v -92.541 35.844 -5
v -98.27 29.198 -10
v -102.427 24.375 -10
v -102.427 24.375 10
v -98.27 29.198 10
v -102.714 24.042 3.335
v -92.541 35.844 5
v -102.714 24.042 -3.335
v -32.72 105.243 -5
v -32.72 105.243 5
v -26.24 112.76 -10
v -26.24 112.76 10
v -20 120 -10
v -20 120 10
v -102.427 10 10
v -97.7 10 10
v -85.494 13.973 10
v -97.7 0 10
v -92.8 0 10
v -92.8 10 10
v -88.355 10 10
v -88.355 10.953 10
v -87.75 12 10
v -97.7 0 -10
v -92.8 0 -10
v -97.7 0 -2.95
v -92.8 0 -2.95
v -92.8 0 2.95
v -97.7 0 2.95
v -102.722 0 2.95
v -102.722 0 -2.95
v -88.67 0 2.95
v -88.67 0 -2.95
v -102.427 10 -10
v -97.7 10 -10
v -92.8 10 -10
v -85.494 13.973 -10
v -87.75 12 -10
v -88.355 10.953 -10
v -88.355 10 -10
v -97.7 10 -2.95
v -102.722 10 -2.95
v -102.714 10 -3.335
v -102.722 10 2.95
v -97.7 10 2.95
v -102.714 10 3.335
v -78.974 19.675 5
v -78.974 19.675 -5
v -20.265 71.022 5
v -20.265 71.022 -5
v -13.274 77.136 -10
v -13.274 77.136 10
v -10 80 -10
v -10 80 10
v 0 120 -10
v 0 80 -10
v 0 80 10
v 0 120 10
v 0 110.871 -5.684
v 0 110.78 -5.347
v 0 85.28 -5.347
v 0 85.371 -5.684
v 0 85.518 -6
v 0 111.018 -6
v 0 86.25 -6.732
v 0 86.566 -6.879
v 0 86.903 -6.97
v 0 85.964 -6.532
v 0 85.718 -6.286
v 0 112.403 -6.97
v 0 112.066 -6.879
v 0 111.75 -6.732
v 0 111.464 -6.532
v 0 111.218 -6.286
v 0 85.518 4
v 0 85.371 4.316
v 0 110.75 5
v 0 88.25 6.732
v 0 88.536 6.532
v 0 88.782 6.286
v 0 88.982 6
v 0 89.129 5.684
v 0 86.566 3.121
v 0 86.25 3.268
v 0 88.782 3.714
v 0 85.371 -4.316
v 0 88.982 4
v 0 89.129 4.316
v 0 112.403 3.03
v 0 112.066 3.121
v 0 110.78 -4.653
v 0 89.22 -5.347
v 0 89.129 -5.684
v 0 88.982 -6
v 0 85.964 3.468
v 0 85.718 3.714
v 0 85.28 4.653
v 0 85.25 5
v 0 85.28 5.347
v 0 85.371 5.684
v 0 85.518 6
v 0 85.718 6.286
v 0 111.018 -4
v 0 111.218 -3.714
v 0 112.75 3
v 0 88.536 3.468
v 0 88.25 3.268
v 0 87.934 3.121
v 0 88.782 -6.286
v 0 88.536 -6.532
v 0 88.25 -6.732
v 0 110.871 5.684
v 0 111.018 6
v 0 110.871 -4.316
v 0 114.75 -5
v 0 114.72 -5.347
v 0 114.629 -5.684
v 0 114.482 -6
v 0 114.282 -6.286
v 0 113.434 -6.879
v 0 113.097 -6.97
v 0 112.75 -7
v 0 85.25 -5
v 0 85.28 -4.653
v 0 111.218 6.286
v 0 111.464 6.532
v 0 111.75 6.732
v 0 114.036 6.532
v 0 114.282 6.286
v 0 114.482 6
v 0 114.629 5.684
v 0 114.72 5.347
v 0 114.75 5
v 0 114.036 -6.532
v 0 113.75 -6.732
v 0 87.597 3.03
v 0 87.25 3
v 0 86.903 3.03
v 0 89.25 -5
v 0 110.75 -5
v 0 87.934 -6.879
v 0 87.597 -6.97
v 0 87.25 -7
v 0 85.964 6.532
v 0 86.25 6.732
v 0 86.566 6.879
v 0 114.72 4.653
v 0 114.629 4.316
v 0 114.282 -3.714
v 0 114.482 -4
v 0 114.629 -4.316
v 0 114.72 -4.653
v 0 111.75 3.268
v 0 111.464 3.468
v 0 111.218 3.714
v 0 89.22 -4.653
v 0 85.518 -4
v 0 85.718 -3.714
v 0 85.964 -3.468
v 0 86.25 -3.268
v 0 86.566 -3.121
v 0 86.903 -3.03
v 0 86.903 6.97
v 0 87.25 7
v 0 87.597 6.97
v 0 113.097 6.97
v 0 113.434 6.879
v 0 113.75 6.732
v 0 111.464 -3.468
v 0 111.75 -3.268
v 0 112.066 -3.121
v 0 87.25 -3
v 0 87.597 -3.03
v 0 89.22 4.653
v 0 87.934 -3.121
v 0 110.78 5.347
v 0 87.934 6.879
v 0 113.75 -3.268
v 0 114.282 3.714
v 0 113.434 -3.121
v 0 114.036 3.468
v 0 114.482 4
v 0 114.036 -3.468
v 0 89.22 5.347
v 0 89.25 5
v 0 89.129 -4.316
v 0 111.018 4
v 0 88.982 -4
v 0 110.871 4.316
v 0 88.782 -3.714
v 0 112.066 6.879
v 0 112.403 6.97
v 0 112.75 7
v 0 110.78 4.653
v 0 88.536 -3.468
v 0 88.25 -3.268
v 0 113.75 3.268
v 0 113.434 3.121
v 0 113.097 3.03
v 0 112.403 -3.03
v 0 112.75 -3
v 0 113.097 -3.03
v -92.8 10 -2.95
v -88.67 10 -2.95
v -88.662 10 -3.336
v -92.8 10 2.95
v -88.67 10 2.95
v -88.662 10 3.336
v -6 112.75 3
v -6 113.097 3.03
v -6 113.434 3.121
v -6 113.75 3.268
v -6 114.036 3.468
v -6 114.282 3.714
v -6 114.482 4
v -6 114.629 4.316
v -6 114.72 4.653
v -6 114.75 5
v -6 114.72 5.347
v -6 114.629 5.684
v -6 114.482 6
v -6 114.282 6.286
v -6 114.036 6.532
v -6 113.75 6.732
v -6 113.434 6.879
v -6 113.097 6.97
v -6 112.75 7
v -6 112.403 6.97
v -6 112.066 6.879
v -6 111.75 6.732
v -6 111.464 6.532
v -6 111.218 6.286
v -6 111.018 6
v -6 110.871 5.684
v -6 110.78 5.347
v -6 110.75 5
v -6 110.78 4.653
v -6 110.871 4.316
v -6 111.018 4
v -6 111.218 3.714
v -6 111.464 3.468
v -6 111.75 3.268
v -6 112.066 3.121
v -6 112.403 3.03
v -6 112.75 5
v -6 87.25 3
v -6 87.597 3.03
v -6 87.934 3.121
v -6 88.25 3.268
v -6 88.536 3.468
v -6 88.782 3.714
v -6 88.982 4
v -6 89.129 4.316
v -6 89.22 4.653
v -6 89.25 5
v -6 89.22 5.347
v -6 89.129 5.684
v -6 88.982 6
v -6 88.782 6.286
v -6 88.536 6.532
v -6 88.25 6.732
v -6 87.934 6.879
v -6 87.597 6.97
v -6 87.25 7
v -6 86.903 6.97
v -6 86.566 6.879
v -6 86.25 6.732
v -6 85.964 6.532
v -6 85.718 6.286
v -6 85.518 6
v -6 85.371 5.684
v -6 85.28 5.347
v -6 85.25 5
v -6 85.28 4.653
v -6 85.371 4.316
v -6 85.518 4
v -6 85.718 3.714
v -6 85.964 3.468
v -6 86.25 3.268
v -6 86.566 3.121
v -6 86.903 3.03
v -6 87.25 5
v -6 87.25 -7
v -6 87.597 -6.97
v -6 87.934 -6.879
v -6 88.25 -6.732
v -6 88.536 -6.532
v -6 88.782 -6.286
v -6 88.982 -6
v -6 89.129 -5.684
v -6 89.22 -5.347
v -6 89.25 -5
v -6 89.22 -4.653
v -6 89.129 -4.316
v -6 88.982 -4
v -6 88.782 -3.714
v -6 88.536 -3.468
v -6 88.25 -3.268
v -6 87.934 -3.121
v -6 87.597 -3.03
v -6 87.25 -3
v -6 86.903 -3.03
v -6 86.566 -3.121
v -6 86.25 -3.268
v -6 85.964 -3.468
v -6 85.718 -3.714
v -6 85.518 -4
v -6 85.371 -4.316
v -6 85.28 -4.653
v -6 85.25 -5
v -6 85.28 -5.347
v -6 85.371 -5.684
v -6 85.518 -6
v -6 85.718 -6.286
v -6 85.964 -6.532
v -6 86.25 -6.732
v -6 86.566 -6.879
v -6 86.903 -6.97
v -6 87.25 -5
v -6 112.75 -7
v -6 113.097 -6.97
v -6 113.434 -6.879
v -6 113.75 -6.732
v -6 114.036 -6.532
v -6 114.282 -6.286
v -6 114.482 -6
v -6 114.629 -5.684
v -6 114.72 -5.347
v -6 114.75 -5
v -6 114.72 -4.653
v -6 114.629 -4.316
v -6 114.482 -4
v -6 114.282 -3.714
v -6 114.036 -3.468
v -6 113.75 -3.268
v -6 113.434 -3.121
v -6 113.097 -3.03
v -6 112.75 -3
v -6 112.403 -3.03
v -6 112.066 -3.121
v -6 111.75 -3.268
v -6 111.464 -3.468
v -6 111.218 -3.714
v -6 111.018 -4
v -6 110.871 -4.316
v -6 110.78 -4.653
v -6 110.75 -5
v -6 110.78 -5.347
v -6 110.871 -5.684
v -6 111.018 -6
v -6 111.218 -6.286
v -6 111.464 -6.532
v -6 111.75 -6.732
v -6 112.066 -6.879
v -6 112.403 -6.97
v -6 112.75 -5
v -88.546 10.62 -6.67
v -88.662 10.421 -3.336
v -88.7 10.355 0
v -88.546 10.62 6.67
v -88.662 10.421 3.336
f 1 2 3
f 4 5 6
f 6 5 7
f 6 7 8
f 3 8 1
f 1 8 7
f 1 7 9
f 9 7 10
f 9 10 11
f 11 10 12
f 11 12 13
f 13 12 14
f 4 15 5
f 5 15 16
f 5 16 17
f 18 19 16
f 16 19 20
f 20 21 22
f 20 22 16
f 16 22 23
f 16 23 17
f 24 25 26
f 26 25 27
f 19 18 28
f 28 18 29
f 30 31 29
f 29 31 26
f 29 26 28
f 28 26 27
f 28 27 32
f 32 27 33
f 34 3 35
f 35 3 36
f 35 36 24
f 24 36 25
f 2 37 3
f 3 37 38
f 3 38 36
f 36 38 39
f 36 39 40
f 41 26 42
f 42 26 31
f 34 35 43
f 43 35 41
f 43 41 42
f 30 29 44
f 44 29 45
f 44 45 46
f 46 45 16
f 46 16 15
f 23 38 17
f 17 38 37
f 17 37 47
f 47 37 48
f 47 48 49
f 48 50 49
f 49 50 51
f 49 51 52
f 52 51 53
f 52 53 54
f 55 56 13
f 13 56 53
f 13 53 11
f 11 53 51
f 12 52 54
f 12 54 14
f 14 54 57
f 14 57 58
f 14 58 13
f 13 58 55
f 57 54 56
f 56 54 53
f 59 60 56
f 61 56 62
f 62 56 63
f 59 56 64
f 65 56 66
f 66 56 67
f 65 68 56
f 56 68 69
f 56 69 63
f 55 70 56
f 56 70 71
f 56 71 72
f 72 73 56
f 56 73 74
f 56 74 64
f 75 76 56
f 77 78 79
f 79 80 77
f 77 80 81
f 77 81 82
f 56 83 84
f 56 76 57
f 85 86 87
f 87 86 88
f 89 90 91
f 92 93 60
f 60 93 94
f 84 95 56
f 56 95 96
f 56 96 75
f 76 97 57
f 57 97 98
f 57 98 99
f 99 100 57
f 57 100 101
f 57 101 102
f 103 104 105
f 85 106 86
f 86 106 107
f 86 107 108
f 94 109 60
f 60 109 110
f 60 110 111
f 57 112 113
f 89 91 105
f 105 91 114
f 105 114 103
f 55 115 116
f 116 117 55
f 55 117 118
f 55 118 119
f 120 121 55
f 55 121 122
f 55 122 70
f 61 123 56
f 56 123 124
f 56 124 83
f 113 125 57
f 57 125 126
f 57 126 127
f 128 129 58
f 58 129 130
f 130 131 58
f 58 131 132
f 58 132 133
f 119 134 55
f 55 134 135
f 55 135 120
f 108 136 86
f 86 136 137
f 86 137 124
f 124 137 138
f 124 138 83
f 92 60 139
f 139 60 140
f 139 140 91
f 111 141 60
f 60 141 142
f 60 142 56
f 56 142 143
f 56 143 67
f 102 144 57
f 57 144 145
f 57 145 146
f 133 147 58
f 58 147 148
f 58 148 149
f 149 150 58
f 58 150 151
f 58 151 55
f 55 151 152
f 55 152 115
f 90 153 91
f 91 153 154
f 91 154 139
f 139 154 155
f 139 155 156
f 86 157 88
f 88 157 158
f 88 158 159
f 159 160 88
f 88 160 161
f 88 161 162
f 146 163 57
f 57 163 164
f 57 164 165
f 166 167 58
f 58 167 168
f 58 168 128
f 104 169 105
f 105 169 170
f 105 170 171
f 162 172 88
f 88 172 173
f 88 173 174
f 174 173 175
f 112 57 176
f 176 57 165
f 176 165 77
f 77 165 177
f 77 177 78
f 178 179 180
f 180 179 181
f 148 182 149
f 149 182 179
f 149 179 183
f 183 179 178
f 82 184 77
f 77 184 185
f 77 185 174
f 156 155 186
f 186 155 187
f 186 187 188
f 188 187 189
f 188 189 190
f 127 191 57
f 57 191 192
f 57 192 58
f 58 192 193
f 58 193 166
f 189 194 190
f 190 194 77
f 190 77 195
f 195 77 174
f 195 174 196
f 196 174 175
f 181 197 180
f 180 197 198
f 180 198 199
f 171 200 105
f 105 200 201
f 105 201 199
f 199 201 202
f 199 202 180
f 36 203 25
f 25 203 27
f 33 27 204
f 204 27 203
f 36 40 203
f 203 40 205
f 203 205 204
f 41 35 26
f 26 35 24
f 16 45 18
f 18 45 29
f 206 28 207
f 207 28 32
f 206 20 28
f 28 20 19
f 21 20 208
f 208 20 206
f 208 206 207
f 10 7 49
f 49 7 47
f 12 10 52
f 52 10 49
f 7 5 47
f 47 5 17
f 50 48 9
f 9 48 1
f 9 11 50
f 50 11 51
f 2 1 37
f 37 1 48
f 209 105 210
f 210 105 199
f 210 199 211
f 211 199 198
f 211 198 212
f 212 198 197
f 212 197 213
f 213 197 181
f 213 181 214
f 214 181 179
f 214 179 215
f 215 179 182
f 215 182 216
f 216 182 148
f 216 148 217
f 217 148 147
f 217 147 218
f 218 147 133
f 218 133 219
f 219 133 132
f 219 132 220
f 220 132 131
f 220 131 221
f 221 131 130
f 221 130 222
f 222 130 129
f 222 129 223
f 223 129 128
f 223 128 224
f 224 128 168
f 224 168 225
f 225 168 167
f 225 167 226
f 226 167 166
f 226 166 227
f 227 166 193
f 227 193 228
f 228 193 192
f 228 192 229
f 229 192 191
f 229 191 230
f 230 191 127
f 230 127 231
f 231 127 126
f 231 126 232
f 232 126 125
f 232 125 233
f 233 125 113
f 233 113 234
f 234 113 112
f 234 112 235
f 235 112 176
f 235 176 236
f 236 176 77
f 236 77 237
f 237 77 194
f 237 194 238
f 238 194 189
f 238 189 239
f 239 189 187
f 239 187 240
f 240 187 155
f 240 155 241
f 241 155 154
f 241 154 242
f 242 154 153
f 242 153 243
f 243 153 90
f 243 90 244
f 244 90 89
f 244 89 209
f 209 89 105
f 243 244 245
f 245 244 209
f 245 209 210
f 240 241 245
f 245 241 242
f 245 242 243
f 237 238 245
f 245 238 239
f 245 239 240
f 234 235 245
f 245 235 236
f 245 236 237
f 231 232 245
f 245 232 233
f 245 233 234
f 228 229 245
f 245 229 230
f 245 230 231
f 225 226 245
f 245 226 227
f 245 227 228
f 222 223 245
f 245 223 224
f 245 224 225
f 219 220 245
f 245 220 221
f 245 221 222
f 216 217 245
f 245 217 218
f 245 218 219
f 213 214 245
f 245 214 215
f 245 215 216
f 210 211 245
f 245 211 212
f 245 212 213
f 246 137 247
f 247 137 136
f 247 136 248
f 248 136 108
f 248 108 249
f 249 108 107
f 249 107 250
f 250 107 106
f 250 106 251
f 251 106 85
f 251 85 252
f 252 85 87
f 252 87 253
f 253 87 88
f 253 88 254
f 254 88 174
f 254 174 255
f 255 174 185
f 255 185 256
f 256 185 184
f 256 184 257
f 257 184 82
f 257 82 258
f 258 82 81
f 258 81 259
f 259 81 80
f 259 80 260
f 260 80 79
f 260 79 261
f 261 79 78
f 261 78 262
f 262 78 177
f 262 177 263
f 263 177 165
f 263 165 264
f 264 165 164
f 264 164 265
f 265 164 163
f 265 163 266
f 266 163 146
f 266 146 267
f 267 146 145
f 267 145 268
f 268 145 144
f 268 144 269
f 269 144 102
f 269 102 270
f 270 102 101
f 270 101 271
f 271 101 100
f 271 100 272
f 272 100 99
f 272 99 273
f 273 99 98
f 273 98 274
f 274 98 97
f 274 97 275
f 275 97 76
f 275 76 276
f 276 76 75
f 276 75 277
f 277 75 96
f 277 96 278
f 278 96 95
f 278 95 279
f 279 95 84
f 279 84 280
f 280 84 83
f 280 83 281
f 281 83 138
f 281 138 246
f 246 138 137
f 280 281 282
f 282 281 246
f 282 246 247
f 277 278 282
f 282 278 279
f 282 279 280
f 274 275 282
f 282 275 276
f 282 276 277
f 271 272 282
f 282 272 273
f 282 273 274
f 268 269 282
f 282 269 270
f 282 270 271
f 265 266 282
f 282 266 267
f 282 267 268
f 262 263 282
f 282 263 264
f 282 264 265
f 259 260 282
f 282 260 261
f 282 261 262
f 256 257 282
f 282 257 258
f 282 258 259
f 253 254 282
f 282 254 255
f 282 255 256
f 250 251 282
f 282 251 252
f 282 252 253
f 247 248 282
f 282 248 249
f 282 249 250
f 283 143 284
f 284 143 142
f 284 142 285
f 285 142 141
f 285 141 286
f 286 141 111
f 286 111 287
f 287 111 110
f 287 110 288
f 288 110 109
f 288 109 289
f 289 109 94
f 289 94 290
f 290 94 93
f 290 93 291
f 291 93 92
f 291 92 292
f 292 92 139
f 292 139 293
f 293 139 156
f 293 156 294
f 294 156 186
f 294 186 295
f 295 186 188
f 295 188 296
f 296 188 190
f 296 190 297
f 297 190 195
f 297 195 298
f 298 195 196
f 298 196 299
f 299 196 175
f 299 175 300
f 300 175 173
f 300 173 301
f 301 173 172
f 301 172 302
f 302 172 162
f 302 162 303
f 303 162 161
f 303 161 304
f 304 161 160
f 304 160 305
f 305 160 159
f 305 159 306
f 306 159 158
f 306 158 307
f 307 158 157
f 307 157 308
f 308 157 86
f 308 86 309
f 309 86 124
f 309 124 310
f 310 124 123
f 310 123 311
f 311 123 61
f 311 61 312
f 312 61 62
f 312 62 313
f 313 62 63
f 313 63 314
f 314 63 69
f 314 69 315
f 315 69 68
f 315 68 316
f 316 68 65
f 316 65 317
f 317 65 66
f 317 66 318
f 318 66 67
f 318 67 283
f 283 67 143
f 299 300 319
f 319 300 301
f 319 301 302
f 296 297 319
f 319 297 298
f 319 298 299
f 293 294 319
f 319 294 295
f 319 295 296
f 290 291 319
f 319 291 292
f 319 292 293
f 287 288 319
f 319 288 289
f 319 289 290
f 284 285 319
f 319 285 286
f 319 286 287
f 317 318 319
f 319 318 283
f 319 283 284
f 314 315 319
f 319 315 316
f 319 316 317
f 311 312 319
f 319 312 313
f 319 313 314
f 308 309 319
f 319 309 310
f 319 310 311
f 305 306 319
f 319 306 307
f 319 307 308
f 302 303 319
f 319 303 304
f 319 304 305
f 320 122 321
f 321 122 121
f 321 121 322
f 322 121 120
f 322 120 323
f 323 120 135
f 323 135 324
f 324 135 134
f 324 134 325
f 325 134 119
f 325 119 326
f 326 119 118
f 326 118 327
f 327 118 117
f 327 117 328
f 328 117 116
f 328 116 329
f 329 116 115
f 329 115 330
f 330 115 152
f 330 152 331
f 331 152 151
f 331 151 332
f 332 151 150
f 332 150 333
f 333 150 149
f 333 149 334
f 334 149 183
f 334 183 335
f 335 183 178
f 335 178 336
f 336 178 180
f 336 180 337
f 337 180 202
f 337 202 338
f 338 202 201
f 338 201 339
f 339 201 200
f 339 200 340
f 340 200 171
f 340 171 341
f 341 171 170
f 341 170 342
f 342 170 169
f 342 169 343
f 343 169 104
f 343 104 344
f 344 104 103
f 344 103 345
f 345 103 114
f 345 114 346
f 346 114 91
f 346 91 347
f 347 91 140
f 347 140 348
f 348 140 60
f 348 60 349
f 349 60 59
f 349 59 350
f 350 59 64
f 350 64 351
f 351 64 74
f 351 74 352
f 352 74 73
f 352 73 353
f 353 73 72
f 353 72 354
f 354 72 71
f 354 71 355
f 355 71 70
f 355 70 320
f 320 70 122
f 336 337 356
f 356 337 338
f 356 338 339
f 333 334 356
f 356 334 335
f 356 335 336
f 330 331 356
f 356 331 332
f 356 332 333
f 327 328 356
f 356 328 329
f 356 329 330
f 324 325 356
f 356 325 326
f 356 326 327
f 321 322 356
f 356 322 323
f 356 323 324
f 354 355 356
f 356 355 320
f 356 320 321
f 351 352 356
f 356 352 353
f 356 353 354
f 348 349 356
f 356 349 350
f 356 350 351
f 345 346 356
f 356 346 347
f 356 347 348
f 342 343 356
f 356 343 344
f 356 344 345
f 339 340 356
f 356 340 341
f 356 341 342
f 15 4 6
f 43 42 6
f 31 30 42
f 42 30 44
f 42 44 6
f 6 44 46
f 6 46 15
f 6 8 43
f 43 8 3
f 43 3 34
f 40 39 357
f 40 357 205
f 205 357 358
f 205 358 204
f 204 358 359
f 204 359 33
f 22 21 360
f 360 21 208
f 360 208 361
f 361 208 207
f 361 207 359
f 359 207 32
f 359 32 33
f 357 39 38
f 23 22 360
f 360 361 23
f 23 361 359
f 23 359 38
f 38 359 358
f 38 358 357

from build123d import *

# Parameters (mm, degrees)
BOSS_EXTRUDE1_DEPTH        = 10
SKETCH2_W                  = 5.05
SKETCH2_H                  = 7.05
CUT_EXTRUDE6_DEPTH         = 10
CUT_EXTRUDE7_DEPTH         = 5
CHAMFER2_SIZE              = 5.196152423
CHAMFER2_SIZE_2            = 9
CHAMFER2_OF_MIRROR4_SIZE   = 5.196152423
CHAMFER2_OF_MIRROR4_SIZE_2 = 9
SKETCH5_R                  = 2
CUT_EXTRUDE5_DEPTH         = 6
CUT_EXTRUDE8_START         = -120
CUT_EXTRUDE8_DEPTH         = 24.374622763
SKETCH8_R                  = 144.95
CUT_EXTRUDE9_DEPTH         = 12
BOSS_EXTRUDE2_DEPTH        = 20


# Read off the part's stored shape, not the designer's step: Cut-Extrude8
with BuildPart() as part:
    # Sketch1 → Boss-Extrude1 (new, symmetric)
    with BuildSketch(Plane.XY):
        Polygon((0, 120), (0, 80), (-10, 80), (-87.75, 12), (-87.75, 0), (-102.75, 0), (-102.75, 24), (-20, 120), align=None)
    extrude(amount=BOSS_EXTRUDE1_DEPTH, both=True)

    # Sketch2 → Cut-Extrude6 (cut)
    with BuildSketch(Plane.XZ):
        with Locations((-100.225, 6.475)):
            Rectangle(SKETCH2_W, SKETCH2_H)
        with Locations((-90.275, 6.475)):
            Rectangle(SKETCH2_W, SKETCH2_H)
        with Locations((-90.275, -6.475)):
            Rectangle(SKETCH2_W, SKETCH2_H)
        with Locations((-100.225, -6.475)):
            Rectangle(SKETCH2_W, SKETCH2_H)
    extrude(amount=-CUT_EXTRUDE6_DEPTH, mode=Mode.SUBTRACT)

    # Sketch6 → Cut-Extrude7 (cut)
    with BuildSketch(Plane.XY.offset(10)):
        Polygon((-98.494242528, 28.937192959), (-85.75, 13.749196141), (-13, 77.376205788), (-25.986145629, 113.055347669), align=None)
    cut_extrude7 = extrude(amount=-CUT_EXTRUDE7_DEPTH, mode=Mode.SUBTRACT)

    # Chamfer2
    # the kernel refuses this chamfer: 9, 5.196152423 mm, written as the material it adds along each edge
    with BuildSketch(Plane(origin=(-5.036481035, 55.496617251, 5), x_dir=(0.05440243528858507, 0.019800867116638043, 0.9983227437537925), z_dir=(-0.342020143325666, 0.9396926207859094, 0))) as chamfer2_piece_1_section:
        Polygon((CHAMFER2_SIZE * 0.998322743697, -CHAMFER2_SIZE * 0.0578938623994), (-CHAMFER2_SIZE_2 * 0.0578938624027, -CHAMFER2_SIZE_2 * 0.998322743754), (0, 0), align=None)
    chamfer2_piece_1 = extrude(amount=84.536493315, mode=Mode.PRIVATE)
    chamfer2_piece_1 = split(chamfer2_piece_1, bisect_by=Plane(origin=(-21.83844233, 92.842389445, 10), z_dir=(0, 0, -1)), keep=Keep.TOP, mode=Mode.PRIVATE)
    chamfer2_piece_1 = split(chamfer2_piece_1, bisect_by=Plane(origin=(-34.214088998, 103.509939047, 6.650101228), z_dir=(0.7574435982041207, -0.6529006015769894, 0)), keep=Keep.TOP, mode=Mode.PRIVATE)
    chamfer2_piece_1 = split(chamfer2_piece_1, bisect_by=Plane(origin=(-10.343648825, 79.699445401, 6.650101228), z_dir=(-0.6583332390976693, 0.7527266079388791, 0)), keep=Keep.TOP, mode=Mode.PRIVATE)
    add(chamfer2_piece_1)
    with BuildSketch(Plane(origin=(-113.460762542, 46.773596955, 5), x_dir=(-0.04434927158426045, -0.03721345742933334, 0.9983227437537927), z_dir=(0.642787609686533, -0.7660444431189835, 0))) as chamfer2_piece_2_section:
        Polygon((CHAMFER2_SIZE * 0.998322743697, -CHAMFER2_SIZE * 0.0578938623994), (-CHAMFER2_SIZE_2 * 0.0578938624027, -CHAMFER2_SIZE_2 * 0.998322743754), (0, 0), align=None)
    chamfer2_piece_2 = extrude(amount=66.394065339, mode=Mode.PRIVATE)
    chamfer2_piece_2 = split(chamfer2_piece_2, bisect_by=Plane(origin=(-97.520772346, 30.066536009, 6.631431033), z_dir=(0.7574435982041207, -0.6529006015769894, 0)), keep=Keep.TOP, mode=Mode.PRIVATE)
    chamfer2_piece_2 = split(chamfer2_piece_2, bisect_by=Plane(origin=(-83.277010041, 15.912068389, 6.631431033), z_dir=(-0.6583332390976693, 0.7527266079388791, 0)), keep=Keep.TOP, mode=Mode.PRIVATE)
    chamfer2_piece_2 = split(chamfer2_piece_2, bisect_by=Plane(origin=(-89.945880011, 23.537136627, 10), z_dir=(0, 0, -1)), keep=Keep.TOP, mode=Mode.PRIVATE)
    add(chamfer2_piece_2)

    # Mirror4: Cut-Extrude7 across plane
    add(cut_extrude7.mirror(Plane.XY), mode=Mode.SUBTRACT)

    # Chamfer2 of Mirror4
    # the kernel refuses this chamfer: 9, 5.196152423 mm, written as the material it adds along each edge
    with BuildSketch(Plane(origin=(-5.036481035, 55.496617251, -5), x_dir=(0.05440243528858507, 0.019800867116638043, -0.9983227437537925), z_dir=(-0.342020143325666, 0.9396926207859094, 0))) as chamfer2_of_mirror4_piece_1_section:
        Polygon((CHAMFER2_OF_MIRROR4_SIZE * 0.998322743697, CHAMFER2_OF_MIRROR4_SIZE * 0.0578938623994), (-CHAMFER2_OF_MIRROR4_SIZE_2 * 0.0578938624027, CHAMFER2_OF_MIRROR4_SIZE_2 * 0.998322743754), (0, 0), align=None)
    chamfer2_of_mirror4_piece_1 = extrude(amount=84.536493315, mode=Mode.PRIVATE)
    chamfer2_of_mirror4_piece_1 = split(chamfer2_of_mirror4_piece_1, bisect_by=Plane(origin=(-34.214088998, 103.509939047, -6.650101228), z_dir=(0.7574435982040639, -0.6529006015770552, 0)), keep=Keep.TOP, mode=Mode.PRIVATE)
    chamfer2_of_mirror4_piece_1 = split(chamfer2_of_mirror4_piece_1, bisect_by=Plane(origin=(-10.343648825, 79.699445401, -6.650101228), z_dir=(-0.6583332390977968, 0.7527266079387677, 0)), keep=Keep.TOP, mode=Mode.PRIVATE)
    chamfer2_of_mirror4_piece_1 = split(chamfer2_of_mirror4_piece_1, bisect_by=Plane(origin=(-21.83844233, 92.842389445, -10), z_dir=(0, 0, 1)), keep=Keep.TOP, mode=Mode.PRIVATE)
    add(chamfer2_of_mirror4_piece_1)
    with BuildSketch(Plane(origin=(-113.460762542, 46.773596955, -5), x_dir=(0.7659013618145366, 0.6426675502167433, 0.019326765612700778), z_dir=(0.642787609686533, -0.7660444431189835, 0))) as chamfer2_of_mirror4_piece_2_section:
        Polygon((CHAMFER2_OF_MIRROR4_SIZE_2 * 0.999813220622, -CHAMFER2_OF_MIRROR4_SIZE_2 * 0.0193267656127), (-CHAMFER2_OF_MIRROR4_SIZE * 0.0193267656116, -CHAMFER2_OF_MIRROR4_SIZE * 0.999813220566), (0, 0), align=None)
    chamfer2_of_mirror4_piece_2 = extrude(amount=66.394065339, mode=Mode.PRIVATE)
    chamfer2_of_mirror4_piece_2 = split(chamfer2_of_mirror4_piece_2, bisect_by=Plane(origin=(-97.520772346, 30.066536009, -6.631431033), z_dir=(0.7574435982040639, -0.6529006015770552, 0)), keep=Keep.TOP, mode=Mode.PRIVATE)
    chamfer2_of_mirror4_piece_2 = split(chamfer2_of_mirror4_piece_2, bisect_by=Plane(origin=(-83.277010041, 15.912068389, -6.631431033), z_dir=(-0.6583332390977968, 0.7527266079387677, 0)), keep=Keep.TOP, mode=Mode.PRIVATE)
    chamfer2_of_mirror4_piece_2 = split(chamfer2_of_mirror4_piece_2, bisect_by=Plane(origin=(-89.945880011, 23.537136627, -10), z_dir=(0, 0, 1)), keep=Keep.TOP, mode=Mode.PRIVATE)
    add(chamfer2_of_mirror4_piece_2)

    # Sketch5 → Cut-Extrude5 (cut)
    with BuildSketch(Plane(origin=(0, 0, 0), x_dir=(0, 0, -1), z_dir=(1, 0, 0))):
        with Locations((-5, 112.75)):
            Circle(SKETCH5_R)
        with Locations((-5, 87.25)):
            Circle(SKETCH5_R)
        with Locations(Location((5, 87.25, 0), (0, 0, 180))):
            Circle(SKETCH5_R)
        with Locations(Location((5, 112.75, 0), (0, 0, 180))):
            Circle(SKETCH5_R)
    extrude(amount=-CUT_EXTRUDE5_DEPTH, mode=Mode.SUBTRACT)

    # Cut-Extrude8 outline → Cut-Extrude8 (cut)
    with BuildSketch(Plane(origin=(0, 120, 0), x_dir=(1, 0, 0), z_dir=(0, 1, 0)).offset(CUT_EXTRUDE8_START)):
        with BuildLine():
            Line((-102.75, 7.56e-07), (-102.75, -10))
            Line((-102.75, -10), (-102.427082983, -10))
            ThreePointArc((-102.427082983, -10), (-102.669249724, -5.002605828), (-102.75, 7.56e-07))
        make_face()
        with BuildLine():
            Line((-102.427082983, 10), (-102.75, 10))
            Line((-102.75, 10), (-102.75, 7.56e-07))
            ThreePointArc((-102.75, 7.56e-07), (-102.669249699, 5.002606583), (-102.427082983, 10))
        make_face()
    extrude(amount=CUT_EXTRUDE8_DEPTH, mode=Mode.SUBTRACT)

    # Sketch8 → Cut-Extrude9 (cut)
    with BuildSketch(Plane.XZ):
        with Locations((56.25, 0)):
            Circle(SKETCH8_R)
    extrude(amount=-CUT_EXTRUDE9_DEPTH, mode=Mode.SUBTRACT)

    # Sketch10 → Boss-Extrude2 (add)
    with BuildSketch(Plane(origin=(0, 0, -10), x_dir=(-1, 0, 0), z_dir=(0, 0, -1))):
        Polygon((87.75, 12), (88.771540348, 10.230640215), (90.560927794, 10.230640215), (90.560927794, 12), align=None)
    extrude(amount=-BOSS_EXTRUDE2_DEPTH)


solid = part.part
